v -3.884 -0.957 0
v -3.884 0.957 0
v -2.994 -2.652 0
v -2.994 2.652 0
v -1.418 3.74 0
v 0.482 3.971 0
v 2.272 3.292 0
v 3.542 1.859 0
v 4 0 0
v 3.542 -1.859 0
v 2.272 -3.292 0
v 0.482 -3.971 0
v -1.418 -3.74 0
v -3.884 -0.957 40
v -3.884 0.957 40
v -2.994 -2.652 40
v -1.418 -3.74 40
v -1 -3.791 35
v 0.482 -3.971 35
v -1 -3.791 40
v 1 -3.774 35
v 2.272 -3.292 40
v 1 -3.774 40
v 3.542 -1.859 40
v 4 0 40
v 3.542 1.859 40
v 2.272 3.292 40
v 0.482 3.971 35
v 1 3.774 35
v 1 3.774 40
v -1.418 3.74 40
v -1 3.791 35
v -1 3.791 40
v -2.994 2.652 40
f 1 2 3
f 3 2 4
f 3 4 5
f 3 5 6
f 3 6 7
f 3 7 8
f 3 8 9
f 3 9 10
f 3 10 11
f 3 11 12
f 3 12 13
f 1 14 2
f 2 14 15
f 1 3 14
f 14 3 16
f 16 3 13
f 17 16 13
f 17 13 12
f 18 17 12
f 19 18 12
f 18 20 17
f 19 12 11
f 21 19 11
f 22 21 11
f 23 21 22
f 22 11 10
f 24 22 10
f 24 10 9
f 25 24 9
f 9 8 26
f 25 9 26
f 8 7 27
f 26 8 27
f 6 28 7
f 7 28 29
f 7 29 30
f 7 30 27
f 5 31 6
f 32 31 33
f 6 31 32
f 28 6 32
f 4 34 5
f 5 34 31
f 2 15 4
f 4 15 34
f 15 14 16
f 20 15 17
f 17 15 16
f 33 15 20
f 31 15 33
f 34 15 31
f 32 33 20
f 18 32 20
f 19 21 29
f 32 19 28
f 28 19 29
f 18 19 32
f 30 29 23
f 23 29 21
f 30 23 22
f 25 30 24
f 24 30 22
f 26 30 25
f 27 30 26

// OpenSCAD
//difference() {
//    hull() {
//        plate(20,3);
//        translate([0,0,20]) {
//            plate(20,3);
//        }
//    }
//
//    translate(0,0,-25) cube([10,10,50]);
//}
difference() {
    cylinder(h=40, r=4);
    translate([0,0,40])
        cube(center=true,size=[2,10,10]);
}
